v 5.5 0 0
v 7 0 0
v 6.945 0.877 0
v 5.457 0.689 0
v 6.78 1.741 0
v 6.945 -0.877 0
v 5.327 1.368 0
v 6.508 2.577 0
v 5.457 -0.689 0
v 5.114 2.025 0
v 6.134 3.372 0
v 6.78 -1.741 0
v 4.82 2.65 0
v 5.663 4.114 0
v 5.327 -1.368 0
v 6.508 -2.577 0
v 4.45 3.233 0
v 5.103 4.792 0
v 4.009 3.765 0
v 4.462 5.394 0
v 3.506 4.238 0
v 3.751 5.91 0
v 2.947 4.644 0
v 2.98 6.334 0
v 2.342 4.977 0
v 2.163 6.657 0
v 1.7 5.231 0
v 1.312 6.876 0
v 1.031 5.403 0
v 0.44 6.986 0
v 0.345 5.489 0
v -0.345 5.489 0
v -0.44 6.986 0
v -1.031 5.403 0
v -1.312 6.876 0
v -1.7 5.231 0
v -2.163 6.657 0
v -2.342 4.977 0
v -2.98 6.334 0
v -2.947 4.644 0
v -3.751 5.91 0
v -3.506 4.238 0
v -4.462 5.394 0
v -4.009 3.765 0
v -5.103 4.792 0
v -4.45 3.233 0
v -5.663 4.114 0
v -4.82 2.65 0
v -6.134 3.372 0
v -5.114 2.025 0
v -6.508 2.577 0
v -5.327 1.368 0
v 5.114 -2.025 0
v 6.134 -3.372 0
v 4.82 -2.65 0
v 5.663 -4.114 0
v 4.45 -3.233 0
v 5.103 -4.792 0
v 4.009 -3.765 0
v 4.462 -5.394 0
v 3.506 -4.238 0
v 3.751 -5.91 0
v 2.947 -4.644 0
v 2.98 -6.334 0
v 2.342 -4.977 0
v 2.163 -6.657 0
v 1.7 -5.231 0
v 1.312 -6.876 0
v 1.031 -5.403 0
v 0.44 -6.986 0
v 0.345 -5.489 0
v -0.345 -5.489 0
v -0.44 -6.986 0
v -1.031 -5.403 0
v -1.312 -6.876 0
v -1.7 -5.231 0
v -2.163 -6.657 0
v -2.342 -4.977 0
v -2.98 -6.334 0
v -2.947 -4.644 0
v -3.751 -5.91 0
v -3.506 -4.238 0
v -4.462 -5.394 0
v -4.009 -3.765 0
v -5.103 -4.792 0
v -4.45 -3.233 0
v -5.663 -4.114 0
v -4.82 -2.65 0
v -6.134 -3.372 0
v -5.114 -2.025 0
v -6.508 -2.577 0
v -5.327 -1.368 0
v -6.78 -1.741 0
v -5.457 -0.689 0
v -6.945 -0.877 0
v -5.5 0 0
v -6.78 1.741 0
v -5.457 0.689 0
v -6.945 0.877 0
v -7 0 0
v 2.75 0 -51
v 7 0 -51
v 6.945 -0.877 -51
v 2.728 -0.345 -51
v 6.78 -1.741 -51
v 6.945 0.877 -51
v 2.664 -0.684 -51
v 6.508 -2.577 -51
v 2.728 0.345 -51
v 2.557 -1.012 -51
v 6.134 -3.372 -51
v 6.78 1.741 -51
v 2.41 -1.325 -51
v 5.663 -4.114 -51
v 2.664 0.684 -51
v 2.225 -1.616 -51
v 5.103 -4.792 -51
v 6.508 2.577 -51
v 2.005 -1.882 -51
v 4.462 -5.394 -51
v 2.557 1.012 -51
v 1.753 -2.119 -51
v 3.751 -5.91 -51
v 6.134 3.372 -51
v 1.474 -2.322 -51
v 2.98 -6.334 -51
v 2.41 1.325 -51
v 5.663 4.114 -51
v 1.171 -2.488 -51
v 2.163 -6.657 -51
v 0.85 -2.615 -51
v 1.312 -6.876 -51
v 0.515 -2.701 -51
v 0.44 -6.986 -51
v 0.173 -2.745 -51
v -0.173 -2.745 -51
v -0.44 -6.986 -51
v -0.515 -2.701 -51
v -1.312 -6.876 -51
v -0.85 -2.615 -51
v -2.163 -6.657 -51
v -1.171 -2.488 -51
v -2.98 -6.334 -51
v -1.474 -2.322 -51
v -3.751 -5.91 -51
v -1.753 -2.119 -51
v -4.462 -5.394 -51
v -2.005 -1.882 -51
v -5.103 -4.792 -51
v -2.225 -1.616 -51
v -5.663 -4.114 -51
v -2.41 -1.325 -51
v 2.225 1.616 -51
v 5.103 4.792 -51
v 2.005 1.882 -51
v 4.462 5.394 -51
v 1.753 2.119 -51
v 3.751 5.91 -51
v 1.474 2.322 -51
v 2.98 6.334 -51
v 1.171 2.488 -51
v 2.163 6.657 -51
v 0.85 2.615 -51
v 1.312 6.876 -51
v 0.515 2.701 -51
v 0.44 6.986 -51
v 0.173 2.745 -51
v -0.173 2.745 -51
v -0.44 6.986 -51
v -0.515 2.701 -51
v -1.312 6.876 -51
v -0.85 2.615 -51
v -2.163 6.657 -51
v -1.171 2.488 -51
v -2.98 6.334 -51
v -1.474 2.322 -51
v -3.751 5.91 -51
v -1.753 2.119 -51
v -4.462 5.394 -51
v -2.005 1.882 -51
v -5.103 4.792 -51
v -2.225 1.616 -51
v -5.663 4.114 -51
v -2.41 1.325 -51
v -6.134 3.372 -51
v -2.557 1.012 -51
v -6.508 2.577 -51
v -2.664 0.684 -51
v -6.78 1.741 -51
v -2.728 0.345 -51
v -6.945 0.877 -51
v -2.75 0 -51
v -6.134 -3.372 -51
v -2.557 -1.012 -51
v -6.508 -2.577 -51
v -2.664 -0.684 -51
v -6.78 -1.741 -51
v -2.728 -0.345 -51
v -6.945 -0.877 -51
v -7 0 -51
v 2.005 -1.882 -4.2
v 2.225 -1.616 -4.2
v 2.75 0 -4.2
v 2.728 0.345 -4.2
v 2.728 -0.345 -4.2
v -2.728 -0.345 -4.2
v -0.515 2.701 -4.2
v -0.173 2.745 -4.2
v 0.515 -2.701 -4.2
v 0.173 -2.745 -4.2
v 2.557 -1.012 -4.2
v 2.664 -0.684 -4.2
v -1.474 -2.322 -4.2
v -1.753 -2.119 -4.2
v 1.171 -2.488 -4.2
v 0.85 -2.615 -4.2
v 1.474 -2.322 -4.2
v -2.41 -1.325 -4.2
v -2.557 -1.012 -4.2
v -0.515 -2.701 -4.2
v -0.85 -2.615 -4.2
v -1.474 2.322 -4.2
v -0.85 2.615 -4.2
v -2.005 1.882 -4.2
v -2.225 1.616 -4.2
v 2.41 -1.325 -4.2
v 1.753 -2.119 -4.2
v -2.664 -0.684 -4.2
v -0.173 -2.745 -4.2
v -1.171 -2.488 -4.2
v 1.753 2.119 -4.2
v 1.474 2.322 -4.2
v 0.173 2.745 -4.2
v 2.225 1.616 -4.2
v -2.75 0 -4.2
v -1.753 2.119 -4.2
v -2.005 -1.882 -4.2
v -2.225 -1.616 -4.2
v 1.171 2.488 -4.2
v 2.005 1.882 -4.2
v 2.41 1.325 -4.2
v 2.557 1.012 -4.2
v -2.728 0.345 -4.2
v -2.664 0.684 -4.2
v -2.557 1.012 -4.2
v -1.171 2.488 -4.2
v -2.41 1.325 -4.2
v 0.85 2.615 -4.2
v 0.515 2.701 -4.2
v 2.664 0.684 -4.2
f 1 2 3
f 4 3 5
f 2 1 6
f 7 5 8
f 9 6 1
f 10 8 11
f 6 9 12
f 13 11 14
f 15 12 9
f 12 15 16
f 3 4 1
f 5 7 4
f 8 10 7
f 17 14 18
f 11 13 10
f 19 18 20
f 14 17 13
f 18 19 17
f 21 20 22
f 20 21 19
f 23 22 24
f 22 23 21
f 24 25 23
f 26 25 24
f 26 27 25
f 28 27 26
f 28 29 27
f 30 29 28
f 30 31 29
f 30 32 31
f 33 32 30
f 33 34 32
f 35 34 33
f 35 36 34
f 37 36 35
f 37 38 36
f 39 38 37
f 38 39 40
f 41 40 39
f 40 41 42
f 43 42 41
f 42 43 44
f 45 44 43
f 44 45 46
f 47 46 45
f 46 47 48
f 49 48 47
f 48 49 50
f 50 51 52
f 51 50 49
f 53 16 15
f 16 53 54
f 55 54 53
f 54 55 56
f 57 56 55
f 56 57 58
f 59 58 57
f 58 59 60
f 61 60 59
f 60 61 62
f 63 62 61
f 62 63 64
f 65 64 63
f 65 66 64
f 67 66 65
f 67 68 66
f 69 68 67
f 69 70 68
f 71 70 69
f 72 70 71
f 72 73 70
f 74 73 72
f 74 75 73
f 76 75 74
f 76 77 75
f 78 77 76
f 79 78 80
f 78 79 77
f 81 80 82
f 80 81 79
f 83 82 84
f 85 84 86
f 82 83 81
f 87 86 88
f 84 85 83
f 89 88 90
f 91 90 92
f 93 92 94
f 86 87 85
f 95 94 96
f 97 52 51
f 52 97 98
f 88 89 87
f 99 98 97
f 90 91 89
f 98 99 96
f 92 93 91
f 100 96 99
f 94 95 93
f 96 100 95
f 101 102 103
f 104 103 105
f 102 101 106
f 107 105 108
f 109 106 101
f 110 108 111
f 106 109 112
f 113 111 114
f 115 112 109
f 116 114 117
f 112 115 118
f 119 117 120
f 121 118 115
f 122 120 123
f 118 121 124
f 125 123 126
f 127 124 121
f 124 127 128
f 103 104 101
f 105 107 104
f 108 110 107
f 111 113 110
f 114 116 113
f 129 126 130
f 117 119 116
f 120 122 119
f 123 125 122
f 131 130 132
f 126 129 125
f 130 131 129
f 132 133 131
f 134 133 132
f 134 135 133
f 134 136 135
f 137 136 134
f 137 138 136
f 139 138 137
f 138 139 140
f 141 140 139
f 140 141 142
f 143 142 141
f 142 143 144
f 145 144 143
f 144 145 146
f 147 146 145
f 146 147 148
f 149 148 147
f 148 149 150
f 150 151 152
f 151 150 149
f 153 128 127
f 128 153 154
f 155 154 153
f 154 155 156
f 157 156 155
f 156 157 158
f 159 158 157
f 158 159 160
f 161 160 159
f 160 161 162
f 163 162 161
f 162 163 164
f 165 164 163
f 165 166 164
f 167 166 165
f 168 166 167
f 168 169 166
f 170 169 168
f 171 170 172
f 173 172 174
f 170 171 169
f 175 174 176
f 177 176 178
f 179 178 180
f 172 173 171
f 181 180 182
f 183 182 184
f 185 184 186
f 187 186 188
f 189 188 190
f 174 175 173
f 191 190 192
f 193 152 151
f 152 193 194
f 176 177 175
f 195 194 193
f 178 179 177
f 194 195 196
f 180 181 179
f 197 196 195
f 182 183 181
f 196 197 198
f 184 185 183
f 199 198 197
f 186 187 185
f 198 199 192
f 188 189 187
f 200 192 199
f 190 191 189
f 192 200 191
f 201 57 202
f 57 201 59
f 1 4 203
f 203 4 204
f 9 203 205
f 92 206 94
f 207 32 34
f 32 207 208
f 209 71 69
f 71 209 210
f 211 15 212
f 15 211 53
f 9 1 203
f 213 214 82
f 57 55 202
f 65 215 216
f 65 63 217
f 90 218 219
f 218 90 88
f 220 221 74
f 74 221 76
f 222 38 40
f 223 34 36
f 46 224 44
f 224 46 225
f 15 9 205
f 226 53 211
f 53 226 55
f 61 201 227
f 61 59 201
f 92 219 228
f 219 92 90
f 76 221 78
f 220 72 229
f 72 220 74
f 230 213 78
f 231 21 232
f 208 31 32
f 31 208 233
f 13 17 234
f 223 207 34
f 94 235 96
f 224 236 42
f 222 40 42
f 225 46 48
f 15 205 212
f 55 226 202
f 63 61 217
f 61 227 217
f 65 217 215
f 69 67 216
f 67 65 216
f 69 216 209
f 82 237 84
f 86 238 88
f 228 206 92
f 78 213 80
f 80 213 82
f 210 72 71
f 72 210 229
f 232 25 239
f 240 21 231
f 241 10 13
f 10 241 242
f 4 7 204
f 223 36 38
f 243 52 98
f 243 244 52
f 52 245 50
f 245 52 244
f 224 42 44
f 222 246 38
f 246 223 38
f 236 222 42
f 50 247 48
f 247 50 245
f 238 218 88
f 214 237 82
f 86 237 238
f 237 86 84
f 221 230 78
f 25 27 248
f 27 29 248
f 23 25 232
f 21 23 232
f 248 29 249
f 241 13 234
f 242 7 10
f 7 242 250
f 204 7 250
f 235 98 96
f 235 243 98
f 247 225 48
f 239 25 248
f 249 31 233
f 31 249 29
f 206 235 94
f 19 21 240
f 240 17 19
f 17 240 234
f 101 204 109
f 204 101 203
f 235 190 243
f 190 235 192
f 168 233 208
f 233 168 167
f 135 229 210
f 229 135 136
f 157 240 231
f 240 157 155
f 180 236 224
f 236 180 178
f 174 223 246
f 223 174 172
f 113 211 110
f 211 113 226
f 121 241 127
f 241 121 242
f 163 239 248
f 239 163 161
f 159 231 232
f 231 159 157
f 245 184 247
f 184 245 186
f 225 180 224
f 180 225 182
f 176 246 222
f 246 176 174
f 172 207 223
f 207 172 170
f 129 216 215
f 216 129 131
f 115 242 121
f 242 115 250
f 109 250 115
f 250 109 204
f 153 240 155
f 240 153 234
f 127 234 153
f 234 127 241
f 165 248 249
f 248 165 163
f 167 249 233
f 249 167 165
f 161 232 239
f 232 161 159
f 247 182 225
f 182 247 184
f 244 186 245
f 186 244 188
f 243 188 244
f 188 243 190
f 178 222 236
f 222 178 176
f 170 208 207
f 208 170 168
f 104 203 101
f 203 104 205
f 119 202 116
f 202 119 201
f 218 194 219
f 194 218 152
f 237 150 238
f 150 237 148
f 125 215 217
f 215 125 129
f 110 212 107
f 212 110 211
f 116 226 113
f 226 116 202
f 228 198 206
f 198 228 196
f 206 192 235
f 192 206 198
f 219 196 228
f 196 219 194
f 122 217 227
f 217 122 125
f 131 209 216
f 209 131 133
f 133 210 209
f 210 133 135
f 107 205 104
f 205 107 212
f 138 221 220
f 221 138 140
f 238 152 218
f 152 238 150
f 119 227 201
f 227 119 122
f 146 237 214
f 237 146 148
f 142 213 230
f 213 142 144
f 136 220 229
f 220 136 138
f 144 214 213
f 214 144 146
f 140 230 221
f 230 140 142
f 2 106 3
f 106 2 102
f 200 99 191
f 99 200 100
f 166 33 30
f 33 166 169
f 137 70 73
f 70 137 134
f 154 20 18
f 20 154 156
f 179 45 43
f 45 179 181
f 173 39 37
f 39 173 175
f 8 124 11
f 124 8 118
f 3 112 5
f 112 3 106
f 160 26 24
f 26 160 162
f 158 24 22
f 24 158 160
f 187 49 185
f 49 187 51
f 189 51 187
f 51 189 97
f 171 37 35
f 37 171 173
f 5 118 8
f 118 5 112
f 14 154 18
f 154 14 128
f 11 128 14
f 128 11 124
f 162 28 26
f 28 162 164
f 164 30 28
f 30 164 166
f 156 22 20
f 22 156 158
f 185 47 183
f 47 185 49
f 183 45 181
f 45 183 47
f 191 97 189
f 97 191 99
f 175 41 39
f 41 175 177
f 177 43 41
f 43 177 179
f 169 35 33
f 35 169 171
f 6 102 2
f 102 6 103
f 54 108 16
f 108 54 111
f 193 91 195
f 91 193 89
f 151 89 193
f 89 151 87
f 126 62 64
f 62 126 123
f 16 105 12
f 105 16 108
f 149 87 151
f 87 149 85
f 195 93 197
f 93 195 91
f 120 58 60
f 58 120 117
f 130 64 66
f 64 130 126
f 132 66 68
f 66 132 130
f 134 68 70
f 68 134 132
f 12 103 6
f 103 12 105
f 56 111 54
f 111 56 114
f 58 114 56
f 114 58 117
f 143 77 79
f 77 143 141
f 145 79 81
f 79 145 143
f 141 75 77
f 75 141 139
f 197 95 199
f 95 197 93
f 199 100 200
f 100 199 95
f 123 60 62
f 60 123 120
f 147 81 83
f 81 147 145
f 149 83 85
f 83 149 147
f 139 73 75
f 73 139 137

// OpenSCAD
$fn = 50;


difference() {
	union() {
		translate(v = [0, 0, -51.0000000000]) {
			cylinder(h = 51, r = 7.0000000000);
		}
	}
	union() {
		translate(v = [0, 0, 0]) {
			rotate(a = [0, 0, 0]) {
				difference() {
					union() {
						#translate(v = [0, 0, -51.0000000000]) {
							cylinder(h = 51, r = 2.2500000000);
						}
						#translate(v = [0, 0, -4.2000000000]) {
							cylinder(h = 4.2000000000, r1 = 2.7500000000, r2 = 5.5000000000);
						}
						#translate(v = [0, 0, -51.0000000000]) {
							cylinder(h = 51, r = 2.7500000000);
						}
						#translate(v = [0, 0, -51.0000000000]) {
							cylinder(h = 51, r = 2.2500000000);
						}
					}
					union();
				}
			}
		}
	}
}
